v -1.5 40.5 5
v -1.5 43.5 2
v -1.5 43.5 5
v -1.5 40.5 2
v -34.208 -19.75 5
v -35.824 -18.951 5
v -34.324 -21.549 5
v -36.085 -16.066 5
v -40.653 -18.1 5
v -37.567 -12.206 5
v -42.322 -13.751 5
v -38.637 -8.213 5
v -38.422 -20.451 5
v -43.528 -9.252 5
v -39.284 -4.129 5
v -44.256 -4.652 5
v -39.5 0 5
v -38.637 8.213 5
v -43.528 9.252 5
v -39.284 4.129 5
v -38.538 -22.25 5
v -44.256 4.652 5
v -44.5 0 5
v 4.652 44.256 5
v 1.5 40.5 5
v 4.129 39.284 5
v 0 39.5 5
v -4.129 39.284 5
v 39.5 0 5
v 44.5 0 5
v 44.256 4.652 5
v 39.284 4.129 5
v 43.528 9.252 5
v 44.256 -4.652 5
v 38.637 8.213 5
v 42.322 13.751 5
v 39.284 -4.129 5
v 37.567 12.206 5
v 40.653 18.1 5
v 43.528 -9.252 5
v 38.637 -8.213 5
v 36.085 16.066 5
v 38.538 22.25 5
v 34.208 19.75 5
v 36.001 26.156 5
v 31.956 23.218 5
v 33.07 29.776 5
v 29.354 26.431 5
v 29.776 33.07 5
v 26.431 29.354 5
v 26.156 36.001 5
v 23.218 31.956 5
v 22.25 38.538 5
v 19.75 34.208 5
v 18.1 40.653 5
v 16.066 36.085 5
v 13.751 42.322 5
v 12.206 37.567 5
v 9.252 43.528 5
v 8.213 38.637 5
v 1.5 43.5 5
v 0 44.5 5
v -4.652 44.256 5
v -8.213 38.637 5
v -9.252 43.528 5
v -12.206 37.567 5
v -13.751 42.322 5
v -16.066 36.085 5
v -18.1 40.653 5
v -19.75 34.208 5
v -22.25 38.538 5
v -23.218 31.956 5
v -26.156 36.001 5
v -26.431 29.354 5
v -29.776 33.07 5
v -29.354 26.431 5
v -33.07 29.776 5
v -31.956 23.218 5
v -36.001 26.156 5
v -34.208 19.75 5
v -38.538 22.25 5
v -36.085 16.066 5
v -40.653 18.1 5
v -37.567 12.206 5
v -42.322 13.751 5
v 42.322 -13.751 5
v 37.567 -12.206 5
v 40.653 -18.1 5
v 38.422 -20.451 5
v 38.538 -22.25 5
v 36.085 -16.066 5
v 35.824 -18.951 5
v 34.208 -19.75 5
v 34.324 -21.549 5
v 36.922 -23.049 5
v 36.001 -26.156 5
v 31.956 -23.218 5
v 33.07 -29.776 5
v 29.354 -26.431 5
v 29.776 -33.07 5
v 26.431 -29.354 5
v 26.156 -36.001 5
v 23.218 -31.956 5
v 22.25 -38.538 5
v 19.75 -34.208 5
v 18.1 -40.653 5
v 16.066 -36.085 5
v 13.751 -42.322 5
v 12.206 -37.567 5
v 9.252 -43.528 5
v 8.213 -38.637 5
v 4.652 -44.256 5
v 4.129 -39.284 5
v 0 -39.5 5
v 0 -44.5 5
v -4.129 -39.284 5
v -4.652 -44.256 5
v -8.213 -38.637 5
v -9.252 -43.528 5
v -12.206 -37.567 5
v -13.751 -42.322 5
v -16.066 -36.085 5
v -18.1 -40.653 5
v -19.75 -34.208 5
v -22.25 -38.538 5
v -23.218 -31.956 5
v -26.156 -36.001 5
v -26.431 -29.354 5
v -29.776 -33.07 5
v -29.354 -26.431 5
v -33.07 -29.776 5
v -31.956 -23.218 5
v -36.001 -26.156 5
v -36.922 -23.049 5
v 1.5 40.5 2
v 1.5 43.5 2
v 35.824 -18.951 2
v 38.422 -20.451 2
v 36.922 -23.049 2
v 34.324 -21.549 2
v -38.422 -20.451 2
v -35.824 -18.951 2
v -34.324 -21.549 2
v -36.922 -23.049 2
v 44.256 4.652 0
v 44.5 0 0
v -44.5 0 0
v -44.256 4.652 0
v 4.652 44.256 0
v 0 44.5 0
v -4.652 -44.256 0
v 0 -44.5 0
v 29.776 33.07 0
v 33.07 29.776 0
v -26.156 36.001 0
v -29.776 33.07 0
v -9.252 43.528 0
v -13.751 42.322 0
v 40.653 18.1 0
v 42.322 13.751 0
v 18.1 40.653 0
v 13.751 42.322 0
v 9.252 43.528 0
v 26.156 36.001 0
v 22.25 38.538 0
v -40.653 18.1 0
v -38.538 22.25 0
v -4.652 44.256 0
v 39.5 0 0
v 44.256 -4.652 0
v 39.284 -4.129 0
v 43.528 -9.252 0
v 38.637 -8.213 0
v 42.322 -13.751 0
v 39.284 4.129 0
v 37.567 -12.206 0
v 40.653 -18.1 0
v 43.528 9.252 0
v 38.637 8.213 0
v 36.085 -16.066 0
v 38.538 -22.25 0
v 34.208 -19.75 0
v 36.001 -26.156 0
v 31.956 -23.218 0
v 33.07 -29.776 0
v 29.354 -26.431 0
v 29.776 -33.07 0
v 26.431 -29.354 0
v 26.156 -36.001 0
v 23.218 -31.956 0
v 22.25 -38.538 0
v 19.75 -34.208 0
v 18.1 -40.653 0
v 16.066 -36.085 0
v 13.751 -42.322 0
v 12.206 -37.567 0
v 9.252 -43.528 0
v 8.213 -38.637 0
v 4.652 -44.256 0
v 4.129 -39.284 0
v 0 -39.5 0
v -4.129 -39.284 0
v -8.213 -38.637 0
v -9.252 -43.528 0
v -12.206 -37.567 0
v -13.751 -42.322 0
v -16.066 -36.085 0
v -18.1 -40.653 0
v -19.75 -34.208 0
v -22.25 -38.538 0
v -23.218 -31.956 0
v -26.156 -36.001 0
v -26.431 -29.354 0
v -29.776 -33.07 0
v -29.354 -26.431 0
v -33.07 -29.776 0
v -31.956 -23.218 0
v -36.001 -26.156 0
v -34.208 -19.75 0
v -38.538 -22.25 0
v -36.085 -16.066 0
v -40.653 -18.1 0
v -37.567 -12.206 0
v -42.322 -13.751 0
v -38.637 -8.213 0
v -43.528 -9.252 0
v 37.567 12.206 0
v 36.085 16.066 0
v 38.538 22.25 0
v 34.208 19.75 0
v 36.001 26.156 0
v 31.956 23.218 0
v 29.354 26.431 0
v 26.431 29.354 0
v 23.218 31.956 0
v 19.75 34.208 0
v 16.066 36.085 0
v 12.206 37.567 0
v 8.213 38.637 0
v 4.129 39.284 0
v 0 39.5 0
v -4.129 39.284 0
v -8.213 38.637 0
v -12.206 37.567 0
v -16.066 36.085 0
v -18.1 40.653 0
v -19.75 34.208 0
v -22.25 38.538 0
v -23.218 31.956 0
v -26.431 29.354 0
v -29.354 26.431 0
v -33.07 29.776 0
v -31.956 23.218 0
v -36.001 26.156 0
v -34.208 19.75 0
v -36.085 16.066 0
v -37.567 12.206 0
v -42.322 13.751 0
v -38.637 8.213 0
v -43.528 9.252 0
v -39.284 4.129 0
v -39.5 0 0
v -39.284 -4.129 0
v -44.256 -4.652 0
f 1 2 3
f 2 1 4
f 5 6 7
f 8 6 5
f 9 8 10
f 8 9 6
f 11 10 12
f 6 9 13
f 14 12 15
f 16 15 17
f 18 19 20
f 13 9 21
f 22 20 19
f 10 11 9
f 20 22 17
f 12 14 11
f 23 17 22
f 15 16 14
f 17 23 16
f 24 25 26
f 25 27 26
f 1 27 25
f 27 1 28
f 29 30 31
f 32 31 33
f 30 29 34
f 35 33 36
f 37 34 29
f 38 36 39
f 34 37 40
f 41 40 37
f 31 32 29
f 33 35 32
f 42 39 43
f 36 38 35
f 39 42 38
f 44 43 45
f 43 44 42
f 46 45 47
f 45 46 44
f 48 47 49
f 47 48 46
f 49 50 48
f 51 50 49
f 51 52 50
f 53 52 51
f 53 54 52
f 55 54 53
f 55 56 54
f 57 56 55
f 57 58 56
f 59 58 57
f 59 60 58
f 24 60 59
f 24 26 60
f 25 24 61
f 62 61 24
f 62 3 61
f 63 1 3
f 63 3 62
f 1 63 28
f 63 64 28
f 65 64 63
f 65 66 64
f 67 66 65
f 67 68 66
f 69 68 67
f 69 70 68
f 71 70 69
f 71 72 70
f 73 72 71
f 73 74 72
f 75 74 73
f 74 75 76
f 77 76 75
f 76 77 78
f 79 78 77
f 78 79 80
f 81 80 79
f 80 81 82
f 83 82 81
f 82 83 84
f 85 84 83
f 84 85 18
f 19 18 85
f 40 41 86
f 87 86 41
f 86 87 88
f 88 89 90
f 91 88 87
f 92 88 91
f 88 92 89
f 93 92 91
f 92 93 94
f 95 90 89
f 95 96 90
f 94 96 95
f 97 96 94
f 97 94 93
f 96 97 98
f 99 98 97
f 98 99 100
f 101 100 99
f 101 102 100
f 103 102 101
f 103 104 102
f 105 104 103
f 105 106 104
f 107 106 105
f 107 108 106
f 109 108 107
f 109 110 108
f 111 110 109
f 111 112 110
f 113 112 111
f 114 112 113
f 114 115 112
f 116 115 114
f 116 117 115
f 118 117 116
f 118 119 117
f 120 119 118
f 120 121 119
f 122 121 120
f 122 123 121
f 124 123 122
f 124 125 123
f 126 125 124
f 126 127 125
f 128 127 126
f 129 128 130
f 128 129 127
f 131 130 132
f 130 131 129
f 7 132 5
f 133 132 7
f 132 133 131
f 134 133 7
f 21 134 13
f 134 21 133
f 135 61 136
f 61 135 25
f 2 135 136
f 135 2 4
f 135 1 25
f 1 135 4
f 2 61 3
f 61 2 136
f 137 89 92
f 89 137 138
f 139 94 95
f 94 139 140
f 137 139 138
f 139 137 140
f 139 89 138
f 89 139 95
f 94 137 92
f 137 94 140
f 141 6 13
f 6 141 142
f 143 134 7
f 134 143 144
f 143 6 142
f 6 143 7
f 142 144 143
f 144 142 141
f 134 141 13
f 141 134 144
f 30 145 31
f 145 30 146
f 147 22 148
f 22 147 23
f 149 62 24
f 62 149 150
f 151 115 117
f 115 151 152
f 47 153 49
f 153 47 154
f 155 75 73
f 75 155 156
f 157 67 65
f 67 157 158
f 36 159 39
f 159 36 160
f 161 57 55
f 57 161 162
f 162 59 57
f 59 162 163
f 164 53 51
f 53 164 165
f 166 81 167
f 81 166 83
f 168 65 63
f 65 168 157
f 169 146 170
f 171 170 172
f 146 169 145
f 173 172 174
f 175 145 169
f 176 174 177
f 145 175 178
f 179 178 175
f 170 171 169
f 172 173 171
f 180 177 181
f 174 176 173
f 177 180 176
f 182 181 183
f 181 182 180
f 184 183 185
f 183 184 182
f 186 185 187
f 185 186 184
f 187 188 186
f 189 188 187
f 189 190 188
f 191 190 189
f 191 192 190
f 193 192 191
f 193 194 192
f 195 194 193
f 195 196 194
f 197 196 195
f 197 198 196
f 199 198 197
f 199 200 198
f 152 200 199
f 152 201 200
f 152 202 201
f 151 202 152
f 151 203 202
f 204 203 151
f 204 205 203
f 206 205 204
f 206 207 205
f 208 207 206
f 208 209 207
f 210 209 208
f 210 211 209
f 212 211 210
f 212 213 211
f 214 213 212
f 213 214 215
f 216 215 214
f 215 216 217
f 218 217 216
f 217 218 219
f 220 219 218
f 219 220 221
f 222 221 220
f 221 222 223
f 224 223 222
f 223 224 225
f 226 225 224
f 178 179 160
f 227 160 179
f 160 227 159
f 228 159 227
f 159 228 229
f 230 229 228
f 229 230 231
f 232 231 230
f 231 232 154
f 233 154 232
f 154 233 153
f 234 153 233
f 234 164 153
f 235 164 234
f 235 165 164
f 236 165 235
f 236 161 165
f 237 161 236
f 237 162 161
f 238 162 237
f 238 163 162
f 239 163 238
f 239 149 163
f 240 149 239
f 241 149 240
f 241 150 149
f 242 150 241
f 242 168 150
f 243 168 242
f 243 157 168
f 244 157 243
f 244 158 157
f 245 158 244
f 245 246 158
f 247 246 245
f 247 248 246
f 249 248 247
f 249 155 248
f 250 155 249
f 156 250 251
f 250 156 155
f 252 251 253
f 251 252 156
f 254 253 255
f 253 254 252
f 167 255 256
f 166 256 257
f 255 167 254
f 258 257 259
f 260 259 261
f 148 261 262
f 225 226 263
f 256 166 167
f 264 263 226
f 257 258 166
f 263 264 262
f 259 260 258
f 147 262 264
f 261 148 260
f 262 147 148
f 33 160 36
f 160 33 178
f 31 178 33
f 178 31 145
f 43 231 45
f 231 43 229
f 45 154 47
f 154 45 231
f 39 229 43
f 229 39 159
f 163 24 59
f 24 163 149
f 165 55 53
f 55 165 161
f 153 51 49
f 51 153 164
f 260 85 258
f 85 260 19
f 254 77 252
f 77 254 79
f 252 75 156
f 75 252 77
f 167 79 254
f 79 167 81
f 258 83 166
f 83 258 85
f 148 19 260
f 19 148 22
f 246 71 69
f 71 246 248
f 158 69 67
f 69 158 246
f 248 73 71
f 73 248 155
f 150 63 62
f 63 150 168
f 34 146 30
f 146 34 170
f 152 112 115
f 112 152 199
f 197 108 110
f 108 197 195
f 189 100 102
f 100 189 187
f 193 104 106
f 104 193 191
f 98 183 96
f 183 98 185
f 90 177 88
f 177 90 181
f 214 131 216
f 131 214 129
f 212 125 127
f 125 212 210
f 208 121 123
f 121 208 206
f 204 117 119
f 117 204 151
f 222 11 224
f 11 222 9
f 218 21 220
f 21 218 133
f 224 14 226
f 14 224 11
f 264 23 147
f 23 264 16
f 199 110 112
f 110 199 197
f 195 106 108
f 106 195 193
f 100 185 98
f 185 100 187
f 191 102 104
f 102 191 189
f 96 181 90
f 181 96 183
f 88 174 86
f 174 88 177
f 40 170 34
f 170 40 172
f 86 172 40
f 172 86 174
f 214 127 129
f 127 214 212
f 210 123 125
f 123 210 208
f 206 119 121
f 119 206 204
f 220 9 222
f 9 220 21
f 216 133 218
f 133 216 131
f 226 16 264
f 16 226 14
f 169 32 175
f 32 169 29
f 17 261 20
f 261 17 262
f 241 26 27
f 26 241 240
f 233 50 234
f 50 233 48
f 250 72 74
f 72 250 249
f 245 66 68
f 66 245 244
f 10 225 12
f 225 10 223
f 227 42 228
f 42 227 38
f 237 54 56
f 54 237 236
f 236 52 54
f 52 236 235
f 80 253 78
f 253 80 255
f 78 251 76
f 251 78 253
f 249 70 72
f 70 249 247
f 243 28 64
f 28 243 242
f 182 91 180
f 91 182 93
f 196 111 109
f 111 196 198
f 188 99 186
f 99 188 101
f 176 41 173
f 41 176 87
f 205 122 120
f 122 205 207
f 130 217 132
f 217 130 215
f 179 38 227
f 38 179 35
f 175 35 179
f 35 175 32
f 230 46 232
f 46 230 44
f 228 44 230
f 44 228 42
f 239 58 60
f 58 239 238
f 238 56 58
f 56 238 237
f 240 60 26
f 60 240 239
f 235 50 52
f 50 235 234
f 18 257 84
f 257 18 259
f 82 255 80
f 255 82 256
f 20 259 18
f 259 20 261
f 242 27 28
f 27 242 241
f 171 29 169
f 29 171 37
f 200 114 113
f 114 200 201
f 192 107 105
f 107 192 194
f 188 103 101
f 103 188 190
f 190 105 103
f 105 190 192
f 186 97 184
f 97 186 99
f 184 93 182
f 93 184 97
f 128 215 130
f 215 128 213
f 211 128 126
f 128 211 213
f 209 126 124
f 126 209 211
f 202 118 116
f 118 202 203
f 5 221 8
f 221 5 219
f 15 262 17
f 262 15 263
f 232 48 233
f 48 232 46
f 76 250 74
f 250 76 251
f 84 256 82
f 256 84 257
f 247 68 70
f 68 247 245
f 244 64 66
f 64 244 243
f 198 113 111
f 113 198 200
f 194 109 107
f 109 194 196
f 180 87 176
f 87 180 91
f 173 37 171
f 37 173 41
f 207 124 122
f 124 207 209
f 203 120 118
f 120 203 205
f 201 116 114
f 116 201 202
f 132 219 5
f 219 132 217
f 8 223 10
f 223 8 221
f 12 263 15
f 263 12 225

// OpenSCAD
difference () {
    cylinder($fn=60, 5, 44.5, 44.5);
    translate([0, 0, -1]) cylinder($fn=60, 7, 39.5, 39.5);
    for (a =[0:120:359])
        translate([42 * sin(a), 42 * cos(a), 3.5])
        rotate([0, 0, a / 2])
              cube([3, 3, 3], center=true);
}
